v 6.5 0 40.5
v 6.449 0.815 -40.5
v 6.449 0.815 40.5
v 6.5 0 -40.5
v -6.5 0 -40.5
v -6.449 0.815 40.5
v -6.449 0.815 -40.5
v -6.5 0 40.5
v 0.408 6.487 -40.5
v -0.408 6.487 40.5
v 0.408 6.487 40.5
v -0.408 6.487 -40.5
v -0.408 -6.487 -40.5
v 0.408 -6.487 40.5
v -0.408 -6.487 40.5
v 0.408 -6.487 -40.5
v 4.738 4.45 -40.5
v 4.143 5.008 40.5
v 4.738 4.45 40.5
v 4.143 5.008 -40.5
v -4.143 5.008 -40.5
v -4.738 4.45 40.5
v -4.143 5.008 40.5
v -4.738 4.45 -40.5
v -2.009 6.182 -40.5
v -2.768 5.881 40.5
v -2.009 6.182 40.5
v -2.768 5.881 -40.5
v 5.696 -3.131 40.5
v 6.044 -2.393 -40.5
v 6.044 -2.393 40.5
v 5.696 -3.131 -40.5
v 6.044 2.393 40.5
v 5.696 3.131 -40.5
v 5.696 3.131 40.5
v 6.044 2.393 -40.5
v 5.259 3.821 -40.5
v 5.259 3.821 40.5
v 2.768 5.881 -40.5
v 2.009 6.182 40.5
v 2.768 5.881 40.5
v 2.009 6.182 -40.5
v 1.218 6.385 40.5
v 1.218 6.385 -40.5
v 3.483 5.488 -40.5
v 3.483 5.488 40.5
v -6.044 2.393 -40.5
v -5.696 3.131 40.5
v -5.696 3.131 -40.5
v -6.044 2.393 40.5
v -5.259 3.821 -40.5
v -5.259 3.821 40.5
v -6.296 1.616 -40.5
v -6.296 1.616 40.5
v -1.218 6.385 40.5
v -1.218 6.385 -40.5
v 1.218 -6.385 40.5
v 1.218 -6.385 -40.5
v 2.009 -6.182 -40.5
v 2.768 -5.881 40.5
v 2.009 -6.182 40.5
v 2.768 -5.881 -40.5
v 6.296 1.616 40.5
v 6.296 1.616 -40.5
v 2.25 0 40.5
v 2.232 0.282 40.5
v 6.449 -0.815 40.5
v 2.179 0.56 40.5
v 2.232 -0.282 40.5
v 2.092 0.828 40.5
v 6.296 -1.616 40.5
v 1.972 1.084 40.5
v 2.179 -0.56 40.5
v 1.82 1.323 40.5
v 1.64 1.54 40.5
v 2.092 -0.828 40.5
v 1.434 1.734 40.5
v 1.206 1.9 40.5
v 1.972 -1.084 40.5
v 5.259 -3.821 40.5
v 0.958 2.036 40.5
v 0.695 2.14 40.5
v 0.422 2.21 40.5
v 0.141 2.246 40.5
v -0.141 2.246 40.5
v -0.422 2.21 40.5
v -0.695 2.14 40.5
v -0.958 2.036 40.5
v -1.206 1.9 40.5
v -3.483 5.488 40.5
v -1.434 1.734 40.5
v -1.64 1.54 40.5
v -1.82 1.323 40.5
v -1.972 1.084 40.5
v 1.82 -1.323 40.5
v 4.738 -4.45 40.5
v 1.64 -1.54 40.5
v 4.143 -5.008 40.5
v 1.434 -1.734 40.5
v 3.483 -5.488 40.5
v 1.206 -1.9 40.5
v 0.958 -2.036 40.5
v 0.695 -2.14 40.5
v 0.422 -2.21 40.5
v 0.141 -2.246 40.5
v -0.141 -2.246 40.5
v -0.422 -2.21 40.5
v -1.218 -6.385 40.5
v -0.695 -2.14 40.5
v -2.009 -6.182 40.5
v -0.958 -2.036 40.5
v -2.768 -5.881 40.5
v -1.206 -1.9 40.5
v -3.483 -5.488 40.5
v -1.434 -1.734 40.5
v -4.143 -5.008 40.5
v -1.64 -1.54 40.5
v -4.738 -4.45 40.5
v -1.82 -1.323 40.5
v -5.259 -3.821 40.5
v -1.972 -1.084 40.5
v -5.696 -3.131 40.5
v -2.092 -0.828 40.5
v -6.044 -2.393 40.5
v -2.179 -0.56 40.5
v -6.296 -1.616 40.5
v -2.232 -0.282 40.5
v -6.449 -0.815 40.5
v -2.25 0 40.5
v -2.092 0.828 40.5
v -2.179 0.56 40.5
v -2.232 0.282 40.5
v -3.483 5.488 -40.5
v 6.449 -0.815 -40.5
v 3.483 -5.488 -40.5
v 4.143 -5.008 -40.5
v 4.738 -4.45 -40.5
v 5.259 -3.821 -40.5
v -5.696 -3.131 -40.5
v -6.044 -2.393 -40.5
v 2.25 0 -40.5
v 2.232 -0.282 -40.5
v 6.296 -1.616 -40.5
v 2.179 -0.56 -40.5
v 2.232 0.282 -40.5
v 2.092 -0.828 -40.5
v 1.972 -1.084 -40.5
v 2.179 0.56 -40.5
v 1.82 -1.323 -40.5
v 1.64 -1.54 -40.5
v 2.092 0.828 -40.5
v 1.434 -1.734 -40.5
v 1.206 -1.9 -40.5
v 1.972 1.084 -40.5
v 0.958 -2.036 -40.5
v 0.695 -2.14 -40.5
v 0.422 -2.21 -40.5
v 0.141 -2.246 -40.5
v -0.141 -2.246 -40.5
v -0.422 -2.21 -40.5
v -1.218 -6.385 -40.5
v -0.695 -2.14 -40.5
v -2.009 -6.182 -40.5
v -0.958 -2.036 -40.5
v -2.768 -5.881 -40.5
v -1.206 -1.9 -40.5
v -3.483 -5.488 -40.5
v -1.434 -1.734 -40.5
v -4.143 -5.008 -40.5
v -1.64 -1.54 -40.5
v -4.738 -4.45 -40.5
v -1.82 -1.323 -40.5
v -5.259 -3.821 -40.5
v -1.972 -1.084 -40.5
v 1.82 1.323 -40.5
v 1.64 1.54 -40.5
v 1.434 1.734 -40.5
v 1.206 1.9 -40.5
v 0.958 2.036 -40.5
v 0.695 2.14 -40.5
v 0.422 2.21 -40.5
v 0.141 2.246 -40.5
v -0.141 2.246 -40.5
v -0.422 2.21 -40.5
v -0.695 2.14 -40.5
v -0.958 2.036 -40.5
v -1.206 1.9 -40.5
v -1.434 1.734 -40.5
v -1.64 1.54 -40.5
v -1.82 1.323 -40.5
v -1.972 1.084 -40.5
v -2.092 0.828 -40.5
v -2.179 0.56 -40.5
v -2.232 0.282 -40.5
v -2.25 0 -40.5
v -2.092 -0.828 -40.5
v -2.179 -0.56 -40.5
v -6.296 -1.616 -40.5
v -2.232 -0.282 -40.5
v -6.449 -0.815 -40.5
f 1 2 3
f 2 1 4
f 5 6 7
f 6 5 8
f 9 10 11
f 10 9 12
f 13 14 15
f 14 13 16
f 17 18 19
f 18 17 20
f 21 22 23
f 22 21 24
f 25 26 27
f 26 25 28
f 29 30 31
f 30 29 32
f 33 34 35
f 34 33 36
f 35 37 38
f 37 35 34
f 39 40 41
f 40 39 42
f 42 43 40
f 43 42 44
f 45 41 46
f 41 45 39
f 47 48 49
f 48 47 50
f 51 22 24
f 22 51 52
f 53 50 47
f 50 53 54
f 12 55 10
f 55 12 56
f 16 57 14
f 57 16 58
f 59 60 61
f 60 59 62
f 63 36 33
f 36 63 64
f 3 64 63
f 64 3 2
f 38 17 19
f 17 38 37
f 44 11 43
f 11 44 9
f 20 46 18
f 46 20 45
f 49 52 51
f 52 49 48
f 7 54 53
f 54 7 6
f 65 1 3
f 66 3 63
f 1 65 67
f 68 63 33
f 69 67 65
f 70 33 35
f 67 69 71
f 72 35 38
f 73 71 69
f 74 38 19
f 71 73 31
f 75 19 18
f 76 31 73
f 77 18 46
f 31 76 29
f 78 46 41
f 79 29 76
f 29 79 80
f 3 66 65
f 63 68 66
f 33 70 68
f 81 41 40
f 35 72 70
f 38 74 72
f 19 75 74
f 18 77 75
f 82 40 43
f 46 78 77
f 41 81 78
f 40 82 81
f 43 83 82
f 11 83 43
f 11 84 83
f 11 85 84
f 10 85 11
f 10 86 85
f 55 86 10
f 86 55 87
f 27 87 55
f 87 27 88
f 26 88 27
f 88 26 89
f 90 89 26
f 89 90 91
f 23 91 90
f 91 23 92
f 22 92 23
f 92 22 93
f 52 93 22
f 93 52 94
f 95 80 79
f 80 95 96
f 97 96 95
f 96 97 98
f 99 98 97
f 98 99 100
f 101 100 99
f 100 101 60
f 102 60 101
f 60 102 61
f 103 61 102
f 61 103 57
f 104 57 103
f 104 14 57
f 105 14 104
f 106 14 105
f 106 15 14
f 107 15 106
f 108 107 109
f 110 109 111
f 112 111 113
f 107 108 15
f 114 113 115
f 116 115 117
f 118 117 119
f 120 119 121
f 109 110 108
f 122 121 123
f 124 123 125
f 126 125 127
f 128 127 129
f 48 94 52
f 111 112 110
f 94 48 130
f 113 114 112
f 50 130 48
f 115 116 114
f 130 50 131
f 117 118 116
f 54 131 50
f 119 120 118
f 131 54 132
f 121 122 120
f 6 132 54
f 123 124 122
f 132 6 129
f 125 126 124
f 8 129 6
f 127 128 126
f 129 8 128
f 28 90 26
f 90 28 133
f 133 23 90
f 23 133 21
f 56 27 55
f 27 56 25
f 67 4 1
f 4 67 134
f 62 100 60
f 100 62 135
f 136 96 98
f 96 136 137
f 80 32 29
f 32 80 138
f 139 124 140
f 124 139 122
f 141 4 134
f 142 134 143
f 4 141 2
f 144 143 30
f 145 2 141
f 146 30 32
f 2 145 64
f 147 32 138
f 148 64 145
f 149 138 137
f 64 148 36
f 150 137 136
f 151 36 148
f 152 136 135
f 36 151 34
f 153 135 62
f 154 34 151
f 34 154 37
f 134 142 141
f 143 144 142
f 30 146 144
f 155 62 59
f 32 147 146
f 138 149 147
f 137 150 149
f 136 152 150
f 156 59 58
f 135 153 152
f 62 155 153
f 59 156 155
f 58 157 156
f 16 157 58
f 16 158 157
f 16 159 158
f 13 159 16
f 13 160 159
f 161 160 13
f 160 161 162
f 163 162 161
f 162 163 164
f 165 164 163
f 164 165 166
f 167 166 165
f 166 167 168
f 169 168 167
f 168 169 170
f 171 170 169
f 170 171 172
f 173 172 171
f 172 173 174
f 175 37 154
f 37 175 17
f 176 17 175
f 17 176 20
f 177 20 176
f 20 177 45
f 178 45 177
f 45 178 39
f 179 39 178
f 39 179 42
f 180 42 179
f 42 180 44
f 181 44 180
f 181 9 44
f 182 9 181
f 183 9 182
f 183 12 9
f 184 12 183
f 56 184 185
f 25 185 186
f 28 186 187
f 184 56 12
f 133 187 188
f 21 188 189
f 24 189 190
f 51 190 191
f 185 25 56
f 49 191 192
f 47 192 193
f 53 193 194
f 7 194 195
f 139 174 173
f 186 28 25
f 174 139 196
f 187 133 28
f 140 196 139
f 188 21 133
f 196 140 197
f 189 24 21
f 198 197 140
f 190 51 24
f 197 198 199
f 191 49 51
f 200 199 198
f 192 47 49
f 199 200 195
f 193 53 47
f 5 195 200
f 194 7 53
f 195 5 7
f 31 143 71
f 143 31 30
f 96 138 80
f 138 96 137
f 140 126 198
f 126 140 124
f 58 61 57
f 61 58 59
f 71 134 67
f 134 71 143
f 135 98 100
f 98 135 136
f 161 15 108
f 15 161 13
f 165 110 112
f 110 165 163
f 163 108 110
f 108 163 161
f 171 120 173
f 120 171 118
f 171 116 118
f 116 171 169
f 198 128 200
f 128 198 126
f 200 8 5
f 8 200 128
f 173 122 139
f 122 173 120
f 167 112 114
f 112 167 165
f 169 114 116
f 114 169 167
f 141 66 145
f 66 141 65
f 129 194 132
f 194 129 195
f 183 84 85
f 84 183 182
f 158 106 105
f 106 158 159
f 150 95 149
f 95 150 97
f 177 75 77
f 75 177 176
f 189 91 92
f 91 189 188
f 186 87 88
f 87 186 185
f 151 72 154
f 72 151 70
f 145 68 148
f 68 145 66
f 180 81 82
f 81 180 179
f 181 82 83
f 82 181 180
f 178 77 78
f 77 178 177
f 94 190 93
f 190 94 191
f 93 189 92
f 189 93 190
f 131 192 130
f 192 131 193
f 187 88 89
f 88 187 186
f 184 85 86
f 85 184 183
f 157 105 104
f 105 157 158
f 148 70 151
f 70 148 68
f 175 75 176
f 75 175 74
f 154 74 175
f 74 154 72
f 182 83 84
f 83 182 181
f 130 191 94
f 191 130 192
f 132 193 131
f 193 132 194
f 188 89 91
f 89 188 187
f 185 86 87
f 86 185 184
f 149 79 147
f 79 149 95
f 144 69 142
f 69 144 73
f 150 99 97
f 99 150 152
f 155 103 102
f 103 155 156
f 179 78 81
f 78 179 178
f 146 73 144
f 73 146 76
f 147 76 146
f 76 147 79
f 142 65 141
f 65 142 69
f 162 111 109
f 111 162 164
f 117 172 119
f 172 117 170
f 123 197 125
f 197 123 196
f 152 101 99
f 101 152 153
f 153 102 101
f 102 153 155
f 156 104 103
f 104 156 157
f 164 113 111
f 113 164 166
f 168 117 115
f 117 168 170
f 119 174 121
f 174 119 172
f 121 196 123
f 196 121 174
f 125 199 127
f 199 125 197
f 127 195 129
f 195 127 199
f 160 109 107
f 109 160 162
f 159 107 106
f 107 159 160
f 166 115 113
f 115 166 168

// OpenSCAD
$fn = 50;


difference() {
	union() {
		translate(v = [0, 0, -40.5000000000]) {
			cylinder(h = 81, r = 6.5000000000);
		}
	}
	union() {
		translate(v = [0, 0, -100.0000000000]) {
			cylinder(h = 200, r = 2.2500000000);
		}
	}
}
